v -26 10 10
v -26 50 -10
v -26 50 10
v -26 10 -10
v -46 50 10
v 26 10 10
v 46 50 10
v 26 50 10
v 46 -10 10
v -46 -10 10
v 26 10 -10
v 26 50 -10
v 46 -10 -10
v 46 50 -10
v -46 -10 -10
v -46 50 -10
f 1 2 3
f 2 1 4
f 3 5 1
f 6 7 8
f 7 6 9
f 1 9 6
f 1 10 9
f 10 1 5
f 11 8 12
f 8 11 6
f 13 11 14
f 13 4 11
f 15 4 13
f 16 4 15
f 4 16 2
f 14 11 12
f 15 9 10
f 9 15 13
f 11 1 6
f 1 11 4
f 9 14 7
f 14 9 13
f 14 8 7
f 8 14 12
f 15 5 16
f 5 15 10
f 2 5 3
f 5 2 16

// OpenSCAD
cube(size = [17+35, 20, 20], center = true);
translate([(17+35)/2 + 10, 20, 0]) {
    cube([20, 60, 20], center=true);
}
translate([-(17+35)/2 - 10, 20, 0]) {
    cube([20, 60, 20], center=true);
}
